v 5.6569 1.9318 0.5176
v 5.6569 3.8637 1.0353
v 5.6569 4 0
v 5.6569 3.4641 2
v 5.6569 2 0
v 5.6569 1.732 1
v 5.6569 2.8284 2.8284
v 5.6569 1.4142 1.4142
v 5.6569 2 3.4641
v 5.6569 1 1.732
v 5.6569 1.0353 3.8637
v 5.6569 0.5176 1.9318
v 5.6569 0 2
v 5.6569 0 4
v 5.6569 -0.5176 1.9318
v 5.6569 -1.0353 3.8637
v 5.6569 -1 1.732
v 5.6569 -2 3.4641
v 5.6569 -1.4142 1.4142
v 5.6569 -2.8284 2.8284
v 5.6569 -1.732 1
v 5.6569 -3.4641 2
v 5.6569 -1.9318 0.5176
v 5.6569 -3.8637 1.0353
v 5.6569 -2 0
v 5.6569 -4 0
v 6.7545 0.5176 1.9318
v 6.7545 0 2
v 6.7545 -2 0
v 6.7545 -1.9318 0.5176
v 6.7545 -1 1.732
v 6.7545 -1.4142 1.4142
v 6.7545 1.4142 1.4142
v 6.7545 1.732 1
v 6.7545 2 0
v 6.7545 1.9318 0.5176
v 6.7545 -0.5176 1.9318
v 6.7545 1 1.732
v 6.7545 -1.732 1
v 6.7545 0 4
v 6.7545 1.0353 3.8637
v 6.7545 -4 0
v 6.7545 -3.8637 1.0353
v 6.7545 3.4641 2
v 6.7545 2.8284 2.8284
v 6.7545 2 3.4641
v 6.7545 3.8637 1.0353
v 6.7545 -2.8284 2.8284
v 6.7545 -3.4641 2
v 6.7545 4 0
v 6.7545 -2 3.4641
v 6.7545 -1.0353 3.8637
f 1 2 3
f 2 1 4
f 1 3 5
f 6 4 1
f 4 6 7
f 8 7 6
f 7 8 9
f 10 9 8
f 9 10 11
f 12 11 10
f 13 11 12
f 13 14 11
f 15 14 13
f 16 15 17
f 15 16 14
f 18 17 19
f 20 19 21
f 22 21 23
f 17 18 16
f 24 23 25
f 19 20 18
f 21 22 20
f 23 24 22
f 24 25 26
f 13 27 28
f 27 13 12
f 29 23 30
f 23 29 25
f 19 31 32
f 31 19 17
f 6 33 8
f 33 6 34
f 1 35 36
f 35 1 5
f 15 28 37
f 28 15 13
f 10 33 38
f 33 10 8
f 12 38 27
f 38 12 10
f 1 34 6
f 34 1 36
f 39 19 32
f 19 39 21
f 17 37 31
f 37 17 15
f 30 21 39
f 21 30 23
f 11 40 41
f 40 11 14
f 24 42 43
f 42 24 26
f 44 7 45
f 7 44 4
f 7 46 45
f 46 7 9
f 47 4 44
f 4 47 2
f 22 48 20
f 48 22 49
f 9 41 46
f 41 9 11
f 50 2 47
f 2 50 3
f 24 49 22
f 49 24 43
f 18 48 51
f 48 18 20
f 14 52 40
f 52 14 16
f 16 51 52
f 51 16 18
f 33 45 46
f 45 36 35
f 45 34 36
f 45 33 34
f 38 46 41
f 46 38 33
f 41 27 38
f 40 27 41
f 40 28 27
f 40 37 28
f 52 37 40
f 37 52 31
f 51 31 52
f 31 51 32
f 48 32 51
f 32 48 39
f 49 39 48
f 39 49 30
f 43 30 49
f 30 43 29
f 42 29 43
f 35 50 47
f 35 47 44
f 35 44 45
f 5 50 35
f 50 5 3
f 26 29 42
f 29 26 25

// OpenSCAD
// file: ../build_environments.scad
// build_environments.scad: modules to build level sections
//

module pool(diameter=10.0, wall_height=2.0, step_width=3.0, connections=[])
{
    difference() {
        union() {
        difference() {
            cylinder(h=0.5,r1=diameter+step_width,r2=diameter+step_width,$fn=48);
            translate([0,0,-0.1])
                cylinder(h=0.7,r1=diameter,r2=diameter,$fn=48);
        }
        difference() {
            cylinder(h=wall_height,r1=diameter+step_width+1.0,r2=diameter+step_width+1.0,$fn=48);
            translate([0,0,-0.1])
                cylinder(h=wall_height+0.2,r1=diameter+step_width,r2=diameter+step_width,$fn=48);
        }
        }
    
        for (c = connections)
        {
            rotate([0,90,0]) {
                angle = atan2(c[1],c[0]);
                rotate([-angle,0,0]) {
                    cylinder(h=diameter+5.0,r1=c[2],r2=c[2],$fn=48);
                }
            }
        }
    }
}

module straight(length=10.0, width=2.0, dy1=0.0, dy2=0.0, dz=0.0)
{
    dims = [0, 0, 0, 0, 0, (dz/length)];
    matrix = [
        [ 1, dims[0], dims[1], 0 ],
        [ dims[2], 1, dims[4], 0 ],
        [ dims[5], dims[3], 1, 0 ],
        [ 0, 0, 0, 1 ]
    ];
    multmatrix(matrix)
    difference() {
        translate([dy1,0,0])
        union() {
            rotate([0,90,0]) {
                difference() {
                    cylinder(h=(length-dy1-dy2),r1=width+1.0,r2=width+1.0,$fn=24);
                    translate([0,0,-0.1])
                        cylinder(h=(length-dy1-dy2+0.2),r1=width,r2=width,$fn=24);
                }
                difference() {
                    cylinder(h=1.0,r1=width+2.0,r2=width+2.0,$fn=24);
                    translate([0,0,-0.1])
                        cylinder(h=1.2,r1=width,r2=width,$fn=24);
                }
                translate([0,0,(length-dy1-dy2)-1.0]) {
                    difference() {
                        cylinder(h=1.0,r1=width+2.0,r2=width+2.0,$fn=24);
                        translate([0,0,-0.1])
                            cylinder(h=1.2,r1=width,r2=width,$fn=24);
                    }
                }
            }
        }
        translate([0,0,-(2*width+4.0)/2])
            cube([3*length,3*length,2*width+4.0],center=true);
    }
}

module curve(p0=[0,0], center=[0,0], dir=1, angle=0.0, width=2.0)
{
    radius = sqrt((p0[0]-center[0])*(p0[0]-center[0]) + (p0[1]-center[1])*(p0[1]-center[1]));
    if (dir == 0) {
        difference() {
            rotate([0,0,-90])
            difference() {
                rotate_extrude(angle = angle, convexity = 10, $fn=32)
                    translate([radius, 0, 0])
                        circle(r = width+1.0,$fn=24);
                rotate([0,0,-1.0])
                    rotate_extrude(angle = angle+2.0, convexity = 10, $fn=32)
                        translate([radius, 0, 0])
                            circle(r = width,$fn=24);
            }
            translate([0,0,-(2*width+4.0)/2])
                cube([5*radius,5*radius,2*width+4.0],center=true);
        }
    }
    else {
        difference() {
            rotate([0,0,90])
            difference() {
                rotate_extrude(angle = -angle, convexity = 10, $fn=32)
                    translate([radius, 0, 0])
                        circle(r = width+1.0,$fn=24);
                rotate([0,0,1.0])
                    rotate_extrude(angle = -angle-2.0, convexity = 10, $fn=32)
                        translate([radius, 0, 0])
                            circle(r = width,$fn=24);
            }
            translate([0,0,-(2*width+4.0)/2])
                cube([5*radius,5*radius,2*width+4.0],center=true);
        }
    }

}

// test pool
//pool(diameter=12.0000, wall_height=3.0000, step_width=3.0000, connections=[[0.0000,-26.0000,2.0000], [23.6074,0.0000,2.0000]]);

// test straight, slope
//straight(length=26.0000, width=2.0000, dy1=11.8322, dy2=6.7082, dz=0.0000);
//straight(length=29.1549, width=12.0000, dy1=0.0000, dy2=0.0000, dz=-15.0000);

// test curve
//curve(p0=[23.6074, 0.0000], center=[23.6074, 5.0000], dir=0, angle=60.1011, width=2.0000);
//curve(p0=[33.6426, 12.4219], center=[37.9771, 9.9295], dir=1, angle=120.4627, width=2.0000);
// main file
use <../build_environments.scad>;
straight(length=6.7545, width=2.0000, dy1=5.6569, dy2=0.0000, dz=0.0000);
